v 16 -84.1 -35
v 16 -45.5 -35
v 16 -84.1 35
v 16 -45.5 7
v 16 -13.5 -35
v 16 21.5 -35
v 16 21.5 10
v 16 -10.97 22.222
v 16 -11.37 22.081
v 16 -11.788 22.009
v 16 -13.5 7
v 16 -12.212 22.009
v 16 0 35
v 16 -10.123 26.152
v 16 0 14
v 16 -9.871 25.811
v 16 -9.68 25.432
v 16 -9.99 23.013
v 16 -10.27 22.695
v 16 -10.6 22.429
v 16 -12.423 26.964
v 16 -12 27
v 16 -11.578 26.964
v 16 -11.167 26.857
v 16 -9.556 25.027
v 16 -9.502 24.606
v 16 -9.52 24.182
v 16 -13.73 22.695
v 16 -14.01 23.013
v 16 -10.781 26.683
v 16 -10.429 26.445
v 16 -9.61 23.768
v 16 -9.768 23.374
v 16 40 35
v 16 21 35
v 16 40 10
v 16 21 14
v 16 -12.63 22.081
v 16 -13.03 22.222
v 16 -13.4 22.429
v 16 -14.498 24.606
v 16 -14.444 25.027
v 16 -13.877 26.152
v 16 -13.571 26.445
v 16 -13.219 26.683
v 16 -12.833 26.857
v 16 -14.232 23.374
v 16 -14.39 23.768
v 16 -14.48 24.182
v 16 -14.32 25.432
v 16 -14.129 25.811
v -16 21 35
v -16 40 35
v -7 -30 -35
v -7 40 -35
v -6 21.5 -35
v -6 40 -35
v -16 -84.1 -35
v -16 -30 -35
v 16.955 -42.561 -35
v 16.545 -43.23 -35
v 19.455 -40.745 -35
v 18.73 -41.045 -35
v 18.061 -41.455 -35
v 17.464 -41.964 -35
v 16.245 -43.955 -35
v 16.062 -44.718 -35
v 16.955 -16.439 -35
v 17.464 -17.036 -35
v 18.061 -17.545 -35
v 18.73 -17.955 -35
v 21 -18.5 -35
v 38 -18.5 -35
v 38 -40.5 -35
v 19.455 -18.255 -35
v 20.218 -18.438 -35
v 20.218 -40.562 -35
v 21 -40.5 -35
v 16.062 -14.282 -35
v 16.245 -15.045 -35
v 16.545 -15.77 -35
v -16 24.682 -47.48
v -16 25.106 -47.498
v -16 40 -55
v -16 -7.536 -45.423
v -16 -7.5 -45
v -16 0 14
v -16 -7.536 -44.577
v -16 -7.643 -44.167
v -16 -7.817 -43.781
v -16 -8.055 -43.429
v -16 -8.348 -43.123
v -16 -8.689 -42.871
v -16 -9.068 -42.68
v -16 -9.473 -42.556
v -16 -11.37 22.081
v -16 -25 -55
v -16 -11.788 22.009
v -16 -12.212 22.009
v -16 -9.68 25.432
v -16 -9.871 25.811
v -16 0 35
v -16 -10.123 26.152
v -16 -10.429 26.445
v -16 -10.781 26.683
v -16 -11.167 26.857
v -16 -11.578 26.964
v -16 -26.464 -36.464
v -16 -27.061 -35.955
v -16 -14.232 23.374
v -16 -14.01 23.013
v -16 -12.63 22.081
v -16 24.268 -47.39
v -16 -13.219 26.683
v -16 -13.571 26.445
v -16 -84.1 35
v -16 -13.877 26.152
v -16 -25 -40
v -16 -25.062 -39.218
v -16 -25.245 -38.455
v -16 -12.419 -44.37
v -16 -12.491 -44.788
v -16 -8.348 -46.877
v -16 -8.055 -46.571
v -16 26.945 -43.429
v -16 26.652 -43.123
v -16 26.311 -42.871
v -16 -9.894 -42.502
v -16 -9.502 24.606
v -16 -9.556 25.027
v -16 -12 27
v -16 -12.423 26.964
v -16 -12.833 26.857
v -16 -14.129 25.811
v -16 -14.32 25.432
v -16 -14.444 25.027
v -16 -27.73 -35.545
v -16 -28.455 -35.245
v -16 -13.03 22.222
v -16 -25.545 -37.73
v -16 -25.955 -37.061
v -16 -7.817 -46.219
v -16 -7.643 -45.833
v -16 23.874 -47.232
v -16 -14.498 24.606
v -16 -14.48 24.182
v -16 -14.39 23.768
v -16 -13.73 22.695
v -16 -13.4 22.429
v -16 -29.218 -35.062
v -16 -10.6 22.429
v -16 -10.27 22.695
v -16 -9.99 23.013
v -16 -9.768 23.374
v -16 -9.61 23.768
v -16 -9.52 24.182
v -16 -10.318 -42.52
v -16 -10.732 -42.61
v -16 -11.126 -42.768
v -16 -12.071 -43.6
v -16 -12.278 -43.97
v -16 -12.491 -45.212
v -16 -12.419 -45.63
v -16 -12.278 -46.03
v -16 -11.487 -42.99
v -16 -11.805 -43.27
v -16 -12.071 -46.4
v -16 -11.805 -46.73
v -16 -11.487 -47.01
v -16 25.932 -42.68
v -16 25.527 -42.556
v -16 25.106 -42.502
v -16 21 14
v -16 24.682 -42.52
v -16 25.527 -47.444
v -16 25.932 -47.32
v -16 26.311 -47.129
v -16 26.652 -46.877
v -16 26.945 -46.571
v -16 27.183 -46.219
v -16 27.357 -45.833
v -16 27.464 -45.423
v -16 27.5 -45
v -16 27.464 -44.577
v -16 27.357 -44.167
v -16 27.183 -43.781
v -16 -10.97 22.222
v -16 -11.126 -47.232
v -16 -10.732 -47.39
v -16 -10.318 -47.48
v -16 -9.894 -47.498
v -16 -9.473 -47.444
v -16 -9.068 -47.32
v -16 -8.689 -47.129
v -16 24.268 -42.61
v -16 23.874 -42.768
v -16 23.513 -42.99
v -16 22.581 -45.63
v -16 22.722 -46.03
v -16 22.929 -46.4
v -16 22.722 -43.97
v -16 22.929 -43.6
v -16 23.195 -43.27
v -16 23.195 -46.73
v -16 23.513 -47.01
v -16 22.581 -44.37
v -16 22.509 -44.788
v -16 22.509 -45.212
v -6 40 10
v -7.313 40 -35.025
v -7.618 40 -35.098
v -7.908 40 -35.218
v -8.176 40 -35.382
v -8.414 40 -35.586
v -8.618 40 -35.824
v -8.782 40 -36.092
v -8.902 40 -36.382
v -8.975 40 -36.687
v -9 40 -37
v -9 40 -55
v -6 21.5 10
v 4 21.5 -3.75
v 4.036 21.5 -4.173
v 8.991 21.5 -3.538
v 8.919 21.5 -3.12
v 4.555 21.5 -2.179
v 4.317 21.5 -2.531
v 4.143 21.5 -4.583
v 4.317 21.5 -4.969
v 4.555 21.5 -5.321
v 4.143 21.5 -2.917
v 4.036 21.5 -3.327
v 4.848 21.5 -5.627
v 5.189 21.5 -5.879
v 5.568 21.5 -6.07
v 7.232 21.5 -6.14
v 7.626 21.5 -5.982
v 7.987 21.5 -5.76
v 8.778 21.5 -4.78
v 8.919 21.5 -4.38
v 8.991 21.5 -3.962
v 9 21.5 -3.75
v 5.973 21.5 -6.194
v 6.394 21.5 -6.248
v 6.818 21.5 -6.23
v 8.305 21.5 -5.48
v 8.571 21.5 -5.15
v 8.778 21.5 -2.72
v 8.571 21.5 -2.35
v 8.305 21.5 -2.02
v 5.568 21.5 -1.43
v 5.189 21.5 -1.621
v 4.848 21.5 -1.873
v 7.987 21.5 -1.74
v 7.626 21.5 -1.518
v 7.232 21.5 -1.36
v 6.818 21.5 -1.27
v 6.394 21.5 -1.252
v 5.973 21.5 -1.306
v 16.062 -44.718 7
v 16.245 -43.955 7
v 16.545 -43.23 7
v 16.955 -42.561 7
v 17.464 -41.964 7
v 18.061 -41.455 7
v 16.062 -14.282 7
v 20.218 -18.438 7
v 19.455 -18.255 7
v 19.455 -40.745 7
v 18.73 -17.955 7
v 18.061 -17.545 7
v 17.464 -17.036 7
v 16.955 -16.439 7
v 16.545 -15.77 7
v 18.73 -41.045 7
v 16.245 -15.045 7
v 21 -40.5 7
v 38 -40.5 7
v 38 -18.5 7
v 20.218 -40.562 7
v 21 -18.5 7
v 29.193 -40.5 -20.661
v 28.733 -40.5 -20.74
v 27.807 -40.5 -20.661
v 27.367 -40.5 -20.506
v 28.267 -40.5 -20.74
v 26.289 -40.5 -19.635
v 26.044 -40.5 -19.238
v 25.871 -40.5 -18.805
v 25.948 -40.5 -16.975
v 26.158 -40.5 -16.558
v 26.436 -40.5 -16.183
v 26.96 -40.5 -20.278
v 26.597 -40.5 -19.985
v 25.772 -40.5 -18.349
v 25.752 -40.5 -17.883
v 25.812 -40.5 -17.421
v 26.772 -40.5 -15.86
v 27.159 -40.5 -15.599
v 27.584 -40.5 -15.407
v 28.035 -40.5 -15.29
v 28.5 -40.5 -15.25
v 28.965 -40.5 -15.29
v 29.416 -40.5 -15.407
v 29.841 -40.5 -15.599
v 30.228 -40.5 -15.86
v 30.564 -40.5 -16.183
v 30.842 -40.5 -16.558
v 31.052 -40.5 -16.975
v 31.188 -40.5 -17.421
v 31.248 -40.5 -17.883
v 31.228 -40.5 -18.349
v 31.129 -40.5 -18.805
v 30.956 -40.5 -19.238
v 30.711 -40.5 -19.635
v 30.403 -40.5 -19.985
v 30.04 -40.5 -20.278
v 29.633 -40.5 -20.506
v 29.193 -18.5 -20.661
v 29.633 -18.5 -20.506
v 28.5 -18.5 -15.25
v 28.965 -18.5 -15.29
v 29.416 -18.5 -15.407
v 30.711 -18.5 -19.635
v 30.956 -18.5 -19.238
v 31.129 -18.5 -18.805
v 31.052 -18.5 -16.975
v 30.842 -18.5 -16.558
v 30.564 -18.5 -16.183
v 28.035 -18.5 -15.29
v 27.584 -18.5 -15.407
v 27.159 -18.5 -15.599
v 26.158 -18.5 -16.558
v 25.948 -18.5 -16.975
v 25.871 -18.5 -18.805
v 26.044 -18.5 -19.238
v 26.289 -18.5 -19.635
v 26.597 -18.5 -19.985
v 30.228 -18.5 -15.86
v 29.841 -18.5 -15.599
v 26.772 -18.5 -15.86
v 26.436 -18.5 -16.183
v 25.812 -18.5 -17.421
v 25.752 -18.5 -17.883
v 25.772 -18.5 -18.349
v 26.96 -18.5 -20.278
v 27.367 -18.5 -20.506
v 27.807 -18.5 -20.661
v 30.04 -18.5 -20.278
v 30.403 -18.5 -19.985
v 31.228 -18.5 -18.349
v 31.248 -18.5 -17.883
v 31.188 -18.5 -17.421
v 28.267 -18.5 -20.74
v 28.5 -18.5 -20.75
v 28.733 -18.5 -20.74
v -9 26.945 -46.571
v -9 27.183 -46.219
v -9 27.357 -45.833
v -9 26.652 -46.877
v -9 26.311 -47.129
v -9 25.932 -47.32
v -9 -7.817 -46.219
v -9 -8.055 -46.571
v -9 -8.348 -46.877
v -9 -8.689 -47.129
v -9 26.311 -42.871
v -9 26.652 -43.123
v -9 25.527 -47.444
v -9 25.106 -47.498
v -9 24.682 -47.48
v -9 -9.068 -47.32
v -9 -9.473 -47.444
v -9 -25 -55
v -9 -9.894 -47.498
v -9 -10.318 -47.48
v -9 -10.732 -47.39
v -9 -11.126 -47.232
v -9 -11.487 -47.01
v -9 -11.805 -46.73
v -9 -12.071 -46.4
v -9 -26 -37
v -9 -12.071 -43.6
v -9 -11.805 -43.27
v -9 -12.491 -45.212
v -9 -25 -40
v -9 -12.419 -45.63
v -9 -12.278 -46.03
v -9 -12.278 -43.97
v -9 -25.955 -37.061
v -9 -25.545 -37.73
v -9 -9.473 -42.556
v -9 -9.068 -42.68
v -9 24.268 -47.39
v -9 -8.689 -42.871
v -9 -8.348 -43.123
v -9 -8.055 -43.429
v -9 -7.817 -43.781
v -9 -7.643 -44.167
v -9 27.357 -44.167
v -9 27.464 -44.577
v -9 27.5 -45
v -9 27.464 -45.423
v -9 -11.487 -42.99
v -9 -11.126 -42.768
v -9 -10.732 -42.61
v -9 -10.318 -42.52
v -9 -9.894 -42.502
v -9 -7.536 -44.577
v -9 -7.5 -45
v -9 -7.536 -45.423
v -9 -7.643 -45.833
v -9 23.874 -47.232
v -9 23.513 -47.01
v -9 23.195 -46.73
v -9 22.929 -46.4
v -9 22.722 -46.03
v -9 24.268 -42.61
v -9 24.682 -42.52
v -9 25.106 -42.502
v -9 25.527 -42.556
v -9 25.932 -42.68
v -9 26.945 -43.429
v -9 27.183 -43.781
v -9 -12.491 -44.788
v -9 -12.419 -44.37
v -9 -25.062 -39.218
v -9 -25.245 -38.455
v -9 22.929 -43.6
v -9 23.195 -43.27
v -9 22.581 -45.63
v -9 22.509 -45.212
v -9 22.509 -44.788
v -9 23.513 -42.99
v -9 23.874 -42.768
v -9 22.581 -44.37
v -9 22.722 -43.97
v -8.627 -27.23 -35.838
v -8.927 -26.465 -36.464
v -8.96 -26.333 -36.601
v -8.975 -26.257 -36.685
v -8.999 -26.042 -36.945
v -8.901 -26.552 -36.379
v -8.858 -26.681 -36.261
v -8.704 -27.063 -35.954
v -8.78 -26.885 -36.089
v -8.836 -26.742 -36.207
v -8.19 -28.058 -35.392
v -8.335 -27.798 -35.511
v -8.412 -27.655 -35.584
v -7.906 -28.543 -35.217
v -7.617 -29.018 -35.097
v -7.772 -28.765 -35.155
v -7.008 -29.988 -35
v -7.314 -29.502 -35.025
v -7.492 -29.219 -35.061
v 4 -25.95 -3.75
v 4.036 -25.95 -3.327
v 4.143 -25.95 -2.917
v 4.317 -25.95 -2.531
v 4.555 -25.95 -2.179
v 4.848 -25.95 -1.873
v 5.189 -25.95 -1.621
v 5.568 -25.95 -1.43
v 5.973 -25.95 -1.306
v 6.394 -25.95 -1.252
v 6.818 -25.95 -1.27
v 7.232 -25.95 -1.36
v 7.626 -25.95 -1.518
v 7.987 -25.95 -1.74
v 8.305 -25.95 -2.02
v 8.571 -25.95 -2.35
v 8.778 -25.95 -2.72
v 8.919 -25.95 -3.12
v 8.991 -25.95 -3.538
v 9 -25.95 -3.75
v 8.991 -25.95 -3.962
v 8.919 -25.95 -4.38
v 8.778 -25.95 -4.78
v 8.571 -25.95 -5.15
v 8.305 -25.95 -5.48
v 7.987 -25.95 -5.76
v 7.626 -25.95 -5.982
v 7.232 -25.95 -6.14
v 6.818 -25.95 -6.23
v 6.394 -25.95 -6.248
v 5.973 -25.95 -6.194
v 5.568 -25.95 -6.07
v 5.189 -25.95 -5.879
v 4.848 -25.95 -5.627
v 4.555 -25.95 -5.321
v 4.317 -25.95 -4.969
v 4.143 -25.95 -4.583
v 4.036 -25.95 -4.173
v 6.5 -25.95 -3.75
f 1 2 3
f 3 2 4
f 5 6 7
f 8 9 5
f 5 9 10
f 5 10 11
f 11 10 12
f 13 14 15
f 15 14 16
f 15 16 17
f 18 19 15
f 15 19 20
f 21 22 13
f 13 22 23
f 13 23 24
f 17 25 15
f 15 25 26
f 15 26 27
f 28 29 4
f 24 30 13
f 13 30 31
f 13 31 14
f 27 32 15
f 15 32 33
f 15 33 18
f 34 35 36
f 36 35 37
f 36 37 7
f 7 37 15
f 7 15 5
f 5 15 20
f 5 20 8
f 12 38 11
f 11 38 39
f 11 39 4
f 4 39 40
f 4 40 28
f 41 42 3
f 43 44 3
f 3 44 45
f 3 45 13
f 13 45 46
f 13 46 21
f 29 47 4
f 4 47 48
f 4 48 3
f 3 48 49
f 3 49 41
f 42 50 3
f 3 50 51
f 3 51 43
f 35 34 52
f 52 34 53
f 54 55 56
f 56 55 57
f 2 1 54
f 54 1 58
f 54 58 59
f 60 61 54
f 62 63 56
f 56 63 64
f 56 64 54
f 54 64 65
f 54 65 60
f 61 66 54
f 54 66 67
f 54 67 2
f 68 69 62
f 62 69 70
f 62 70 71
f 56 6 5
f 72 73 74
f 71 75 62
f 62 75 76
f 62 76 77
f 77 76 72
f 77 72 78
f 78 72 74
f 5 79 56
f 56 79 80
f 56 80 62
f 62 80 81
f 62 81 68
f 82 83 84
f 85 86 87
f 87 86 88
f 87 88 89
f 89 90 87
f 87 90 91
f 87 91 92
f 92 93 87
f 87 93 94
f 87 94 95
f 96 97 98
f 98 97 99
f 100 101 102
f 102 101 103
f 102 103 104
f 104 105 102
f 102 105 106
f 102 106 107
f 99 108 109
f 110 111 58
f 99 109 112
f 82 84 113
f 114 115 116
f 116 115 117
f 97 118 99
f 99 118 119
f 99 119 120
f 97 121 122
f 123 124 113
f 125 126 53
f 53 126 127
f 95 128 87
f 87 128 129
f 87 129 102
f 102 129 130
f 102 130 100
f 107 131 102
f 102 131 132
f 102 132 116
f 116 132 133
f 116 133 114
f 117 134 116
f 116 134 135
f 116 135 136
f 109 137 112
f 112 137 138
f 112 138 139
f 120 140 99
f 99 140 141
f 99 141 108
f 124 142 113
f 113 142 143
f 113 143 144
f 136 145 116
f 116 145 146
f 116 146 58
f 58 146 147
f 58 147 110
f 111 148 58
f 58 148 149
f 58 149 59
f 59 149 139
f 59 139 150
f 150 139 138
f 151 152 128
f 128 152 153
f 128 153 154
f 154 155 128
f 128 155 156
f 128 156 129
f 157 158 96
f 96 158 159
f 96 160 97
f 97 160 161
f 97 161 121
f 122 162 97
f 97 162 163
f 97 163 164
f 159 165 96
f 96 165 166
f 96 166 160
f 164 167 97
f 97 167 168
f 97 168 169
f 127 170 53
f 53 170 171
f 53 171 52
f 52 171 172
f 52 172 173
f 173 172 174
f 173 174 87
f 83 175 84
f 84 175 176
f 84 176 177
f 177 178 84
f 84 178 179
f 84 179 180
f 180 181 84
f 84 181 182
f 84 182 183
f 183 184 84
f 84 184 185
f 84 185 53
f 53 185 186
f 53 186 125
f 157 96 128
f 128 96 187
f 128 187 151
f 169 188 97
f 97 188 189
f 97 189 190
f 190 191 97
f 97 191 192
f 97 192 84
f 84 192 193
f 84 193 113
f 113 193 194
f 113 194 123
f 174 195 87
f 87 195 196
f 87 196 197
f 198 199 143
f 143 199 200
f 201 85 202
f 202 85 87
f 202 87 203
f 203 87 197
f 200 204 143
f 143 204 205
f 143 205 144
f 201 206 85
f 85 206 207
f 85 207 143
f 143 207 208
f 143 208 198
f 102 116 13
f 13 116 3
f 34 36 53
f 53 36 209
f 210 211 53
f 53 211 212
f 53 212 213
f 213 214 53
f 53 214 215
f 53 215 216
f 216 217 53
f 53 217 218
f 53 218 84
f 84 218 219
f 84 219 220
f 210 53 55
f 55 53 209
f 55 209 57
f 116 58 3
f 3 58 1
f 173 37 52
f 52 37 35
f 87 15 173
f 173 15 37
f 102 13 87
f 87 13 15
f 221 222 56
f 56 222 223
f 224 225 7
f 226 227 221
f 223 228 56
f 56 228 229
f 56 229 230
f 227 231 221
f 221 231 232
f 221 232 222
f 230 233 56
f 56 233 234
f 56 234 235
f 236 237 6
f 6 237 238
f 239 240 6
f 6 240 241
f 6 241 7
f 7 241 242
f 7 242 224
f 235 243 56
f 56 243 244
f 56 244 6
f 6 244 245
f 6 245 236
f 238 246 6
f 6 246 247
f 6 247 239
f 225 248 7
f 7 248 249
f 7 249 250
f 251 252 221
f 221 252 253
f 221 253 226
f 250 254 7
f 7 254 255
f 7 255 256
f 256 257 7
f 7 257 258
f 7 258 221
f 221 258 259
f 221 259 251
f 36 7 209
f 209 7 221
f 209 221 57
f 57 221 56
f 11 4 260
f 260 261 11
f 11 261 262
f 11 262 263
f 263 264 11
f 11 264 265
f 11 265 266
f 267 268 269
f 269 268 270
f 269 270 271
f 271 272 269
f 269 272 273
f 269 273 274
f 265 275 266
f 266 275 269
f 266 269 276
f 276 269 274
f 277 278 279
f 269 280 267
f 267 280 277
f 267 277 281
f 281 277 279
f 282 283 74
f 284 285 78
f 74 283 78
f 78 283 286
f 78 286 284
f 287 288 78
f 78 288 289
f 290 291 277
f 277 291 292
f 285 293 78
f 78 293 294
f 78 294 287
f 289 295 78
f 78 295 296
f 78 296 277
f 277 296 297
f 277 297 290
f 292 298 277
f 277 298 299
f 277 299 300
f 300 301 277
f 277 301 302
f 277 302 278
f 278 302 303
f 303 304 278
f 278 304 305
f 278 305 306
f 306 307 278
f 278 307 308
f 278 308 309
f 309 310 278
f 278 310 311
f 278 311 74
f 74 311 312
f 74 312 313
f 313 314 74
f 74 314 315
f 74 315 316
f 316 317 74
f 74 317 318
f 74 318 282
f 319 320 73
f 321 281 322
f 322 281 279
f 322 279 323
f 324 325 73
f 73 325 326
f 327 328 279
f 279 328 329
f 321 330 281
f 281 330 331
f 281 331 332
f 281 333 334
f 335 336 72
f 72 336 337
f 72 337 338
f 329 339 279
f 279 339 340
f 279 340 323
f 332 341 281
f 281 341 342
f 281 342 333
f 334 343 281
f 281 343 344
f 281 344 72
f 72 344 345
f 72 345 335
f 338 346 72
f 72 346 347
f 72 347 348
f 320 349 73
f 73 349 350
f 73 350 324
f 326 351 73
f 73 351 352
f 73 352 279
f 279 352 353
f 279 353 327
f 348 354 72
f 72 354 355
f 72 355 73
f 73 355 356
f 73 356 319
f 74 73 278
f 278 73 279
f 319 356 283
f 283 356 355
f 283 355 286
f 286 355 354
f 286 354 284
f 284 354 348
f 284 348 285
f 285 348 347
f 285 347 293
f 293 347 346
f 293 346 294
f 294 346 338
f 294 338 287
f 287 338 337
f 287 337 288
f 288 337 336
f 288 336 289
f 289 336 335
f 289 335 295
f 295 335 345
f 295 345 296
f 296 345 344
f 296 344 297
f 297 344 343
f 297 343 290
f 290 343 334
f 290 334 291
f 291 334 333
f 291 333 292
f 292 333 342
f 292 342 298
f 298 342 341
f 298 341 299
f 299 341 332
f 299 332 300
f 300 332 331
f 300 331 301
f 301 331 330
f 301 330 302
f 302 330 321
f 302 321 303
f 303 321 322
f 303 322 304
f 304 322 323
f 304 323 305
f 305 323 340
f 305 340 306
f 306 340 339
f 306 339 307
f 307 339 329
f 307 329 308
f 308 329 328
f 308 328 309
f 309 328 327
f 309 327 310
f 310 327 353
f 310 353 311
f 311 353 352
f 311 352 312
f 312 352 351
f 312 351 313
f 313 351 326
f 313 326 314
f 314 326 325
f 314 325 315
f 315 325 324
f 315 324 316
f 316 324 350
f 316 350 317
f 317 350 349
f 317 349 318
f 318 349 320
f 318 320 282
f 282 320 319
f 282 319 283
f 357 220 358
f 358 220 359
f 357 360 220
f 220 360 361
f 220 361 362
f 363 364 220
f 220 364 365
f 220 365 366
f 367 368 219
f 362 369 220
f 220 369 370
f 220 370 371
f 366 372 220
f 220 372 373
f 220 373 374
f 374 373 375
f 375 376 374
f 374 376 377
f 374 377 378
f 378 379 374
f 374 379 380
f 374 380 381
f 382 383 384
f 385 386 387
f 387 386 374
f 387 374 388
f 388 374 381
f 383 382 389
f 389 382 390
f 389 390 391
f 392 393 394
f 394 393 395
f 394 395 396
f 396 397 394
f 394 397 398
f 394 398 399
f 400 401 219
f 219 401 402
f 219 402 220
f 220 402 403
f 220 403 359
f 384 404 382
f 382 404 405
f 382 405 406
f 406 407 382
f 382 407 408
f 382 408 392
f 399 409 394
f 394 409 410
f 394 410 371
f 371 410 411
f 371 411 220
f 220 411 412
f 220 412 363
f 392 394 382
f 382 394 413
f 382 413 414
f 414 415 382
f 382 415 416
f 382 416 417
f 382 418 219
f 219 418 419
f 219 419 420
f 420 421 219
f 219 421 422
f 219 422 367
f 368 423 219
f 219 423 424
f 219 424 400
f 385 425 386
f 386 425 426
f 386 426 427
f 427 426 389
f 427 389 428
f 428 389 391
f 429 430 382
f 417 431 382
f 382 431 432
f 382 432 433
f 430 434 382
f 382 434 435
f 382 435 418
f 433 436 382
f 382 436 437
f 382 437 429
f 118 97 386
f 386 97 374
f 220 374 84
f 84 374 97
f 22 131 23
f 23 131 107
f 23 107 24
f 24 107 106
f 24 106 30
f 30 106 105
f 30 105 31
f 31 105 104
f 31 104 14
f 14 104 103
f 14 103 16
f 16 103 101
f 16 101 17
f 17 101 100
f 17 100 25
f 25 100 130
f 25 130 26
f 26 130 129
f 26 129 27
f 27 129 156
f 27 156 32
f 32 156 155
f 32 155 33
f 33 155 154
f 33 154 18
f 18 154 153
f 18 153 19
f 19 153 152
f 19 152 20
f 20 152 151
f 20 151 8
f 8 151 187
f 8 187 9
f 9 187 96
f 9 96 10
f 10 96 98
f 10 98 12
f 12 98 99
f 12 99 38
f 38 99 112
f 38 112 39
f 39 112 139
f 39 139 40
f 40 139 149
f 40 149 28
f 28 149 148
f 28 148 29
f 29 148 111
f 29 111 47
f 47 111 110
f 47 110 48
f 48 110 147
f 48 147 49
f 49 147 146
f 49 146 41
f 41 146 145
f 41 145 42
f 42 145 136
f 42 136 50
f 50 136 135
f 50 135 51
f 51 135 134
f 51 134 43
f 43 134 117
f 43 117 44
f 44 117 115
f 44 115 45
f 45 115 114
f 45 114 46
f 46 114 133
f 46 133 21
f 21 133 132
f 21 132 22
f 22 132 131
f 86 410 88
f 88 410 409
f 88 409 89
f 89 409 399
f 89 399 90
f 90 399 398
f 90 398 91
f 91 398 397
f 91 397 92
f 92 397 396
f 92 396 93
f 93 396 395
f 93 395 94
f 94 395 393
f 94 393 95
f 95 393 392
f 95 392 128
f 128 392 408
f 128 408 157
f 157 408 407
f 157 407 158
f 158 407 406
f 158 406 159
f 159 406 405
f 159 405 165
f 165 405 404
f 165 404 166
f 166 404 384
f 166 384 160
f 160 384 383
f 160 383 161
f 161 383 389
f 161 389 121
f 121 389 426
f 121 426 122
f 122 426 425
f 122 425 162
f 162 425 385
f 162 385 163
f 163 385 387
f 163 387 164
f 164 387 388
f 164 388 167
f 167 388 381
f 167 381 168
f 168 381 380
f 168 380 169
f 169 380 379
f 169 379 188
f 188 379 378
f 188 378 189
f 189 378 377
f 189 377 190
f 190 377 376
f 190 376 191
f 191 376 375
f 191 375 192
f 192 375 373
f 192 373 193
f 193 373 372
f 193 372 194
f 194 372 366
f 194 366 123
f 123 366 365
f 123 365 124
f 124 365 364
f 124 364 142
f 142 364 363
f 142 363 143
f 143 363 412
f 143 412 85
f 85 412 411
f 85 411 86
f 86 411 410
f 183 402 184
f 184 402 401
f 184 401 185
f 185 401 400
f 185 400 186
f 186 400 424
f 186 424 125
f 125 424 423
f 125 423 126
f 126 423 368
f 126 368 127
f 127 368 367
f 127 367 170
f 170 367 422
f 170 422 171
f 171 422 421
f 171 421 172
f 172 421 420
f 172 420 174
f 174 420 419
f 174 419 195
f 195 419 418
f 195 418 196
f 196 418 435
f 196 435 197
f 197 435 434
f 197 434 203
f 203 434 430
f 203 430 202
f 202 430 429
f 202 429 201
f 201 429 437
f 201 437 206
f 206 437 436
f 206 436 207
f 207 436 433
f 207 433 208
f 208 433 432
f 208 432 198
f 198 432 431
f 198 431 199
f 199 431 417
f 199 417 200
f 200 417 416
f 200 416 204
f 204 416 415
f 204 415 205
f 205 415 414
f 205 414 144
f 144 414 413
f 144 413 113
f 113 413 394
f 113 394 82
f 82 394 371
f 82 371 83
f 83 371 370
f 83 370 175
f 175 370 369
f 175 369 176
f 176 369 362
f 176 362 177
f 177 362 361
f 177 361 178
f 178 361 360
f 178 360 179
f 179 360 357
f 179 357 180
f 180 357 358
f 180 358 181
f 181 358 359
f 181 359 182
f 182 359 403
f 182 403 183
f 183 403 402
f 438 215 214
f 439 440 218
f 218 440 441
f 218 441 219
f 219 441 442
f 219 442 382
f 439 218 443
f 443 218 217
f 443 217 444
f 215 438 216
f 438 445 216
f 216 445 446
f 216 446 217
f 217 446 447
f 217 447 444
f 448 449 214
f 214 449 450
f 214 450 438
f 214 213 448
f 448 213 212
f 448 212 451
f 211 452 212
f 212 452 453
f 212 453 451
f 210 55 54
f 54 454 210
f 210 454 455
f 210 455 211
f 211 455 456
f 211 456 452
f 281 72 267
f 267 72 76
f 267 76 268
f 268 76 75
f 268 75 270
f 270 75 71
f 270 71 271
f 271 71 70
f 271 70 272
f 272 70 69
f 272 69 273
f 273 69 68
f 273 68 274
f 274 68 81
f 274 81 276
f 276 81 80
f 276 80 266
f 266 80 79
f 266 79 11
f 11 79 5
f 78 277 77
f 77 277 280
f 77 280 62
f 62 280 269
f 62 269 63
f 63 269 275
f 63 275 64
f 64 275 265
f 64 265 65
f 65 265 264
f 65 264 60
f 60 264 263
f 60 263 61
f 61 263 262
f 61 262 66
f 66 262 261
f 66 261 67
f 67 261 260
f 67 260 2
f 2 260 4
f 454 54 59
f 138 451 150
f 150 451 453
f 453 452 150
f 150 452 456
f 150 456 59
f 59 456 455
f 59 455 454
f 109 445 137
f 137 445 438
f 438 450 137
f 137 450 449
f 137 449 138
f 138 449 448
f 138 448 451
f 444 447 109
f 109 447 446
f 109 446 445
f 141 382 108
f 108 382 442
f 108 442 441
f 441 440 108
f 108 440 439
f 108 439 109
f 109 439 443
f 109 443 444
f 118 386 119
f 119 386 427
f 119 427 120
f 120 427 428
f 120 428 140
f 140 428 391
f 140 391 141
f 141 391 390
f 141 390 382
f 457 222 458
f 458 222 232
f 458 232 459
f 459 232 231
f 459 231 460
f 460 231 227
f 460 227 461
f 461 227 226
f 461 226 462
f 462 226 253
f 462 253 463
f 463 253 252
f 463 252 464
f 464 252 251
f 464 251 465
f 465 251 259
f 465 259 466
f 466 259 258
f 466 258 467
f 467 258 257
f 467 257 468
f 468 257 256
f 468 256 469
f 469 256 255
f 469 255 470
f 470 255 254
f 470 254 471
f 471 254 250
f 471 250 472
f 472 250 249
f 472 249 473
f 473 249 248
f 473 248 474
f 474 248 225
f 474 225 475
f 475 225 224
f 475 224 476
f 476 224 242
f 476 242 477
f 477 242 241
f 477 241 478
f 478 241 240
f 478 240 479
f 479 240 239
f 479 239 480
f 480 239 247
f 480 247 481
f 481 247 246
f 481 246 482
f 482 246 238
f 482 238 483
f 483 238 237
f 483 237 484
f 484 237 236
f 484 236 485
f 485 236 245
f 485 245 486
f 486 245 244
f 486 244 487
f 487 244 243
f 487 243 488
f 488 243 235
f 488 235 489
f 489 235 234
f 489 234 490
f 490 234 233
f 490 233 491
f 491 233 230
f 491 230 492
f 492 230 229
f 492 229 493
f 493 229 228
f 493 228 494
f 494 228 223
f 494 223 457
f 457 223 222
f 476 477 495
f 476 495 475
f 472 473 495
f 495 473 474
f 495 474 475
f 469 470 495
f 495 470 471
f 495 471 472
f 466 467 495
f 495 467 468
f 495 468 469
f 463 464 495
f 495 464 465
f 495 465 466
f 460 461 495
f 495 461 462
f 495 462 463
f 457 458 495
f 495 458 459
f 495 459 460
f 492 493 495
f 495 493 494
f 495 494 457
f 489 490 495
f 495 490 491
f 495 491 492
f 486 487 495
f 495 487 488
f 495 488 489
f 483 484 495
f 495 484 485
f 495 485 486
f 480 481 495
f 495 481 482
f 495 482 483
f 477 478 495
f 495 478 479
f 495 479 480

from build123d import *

# Parameters (mm, degrees)
SKETCH1_W                = 32
SKETCH1_H                = 70
BOSS_EXTRUDE1_DEPTH      = 40
BOSS_EXTRUDE1_DEPTH_BACK = 84.1
SKETCH2_W                = 21
SKETCH2_H                = 21
CUT_EXTRUDE1_DEPTH       = 17
CUT_EXTRUDE1_DEPTH_BACK  = 17
CUT_EXTRUDE2_START       = -18.5
SKETCH3_W                = 22
SKETCH3_H                = 45
CUT_EXTRUDE2_DEPTH       = 18.5
SKETCH4_W                = 42
SKETCH4_H                = 22
BOSS_EXTRUDE2_DEPTH      = 22
SKETCH5_R                = 2.75
CUT_EXTRUDE3_DEPTH       = 66.6
SKETCH6_W                = 7
SKETCH6_H                = 65
BOSS_EXTRUDE3_DEPTH      = 20
SKETCH7_R                = 2.5
CUT_EXTRUDE4_DEPTH       = 17
CUT_EXTRUDE4_DEPTH_BACK  = 39
SKETCH8_R                = 2.5
CUT_EXTRUDE5_DEPTH       = 8
FILLET1_R                = 2
FILLET2_R                = 5
SKETCH9_R                = 2.5
CUT_EXTRUDE6_DEPTH       = 47.45


with BuildPart() as part:
    # Sketch1 → Boss-Extrude1 (new body, two sides)
    with BuildSketch(Plane(origin=(0, 0, 0), x_dir=(1, 0, 0), z_dir=(0, 1, 0))) as boss_extrude1_sk:
        Rectangle(SKETCH1_W, SKETCH1_H)
    extrude(amount=BOSS_EXTRUDE1_DEPTH)
    extrude(boss_extrude1_sk.sketch, amount=-BOSS_EXTRUDE1_DEPTH_BACK)

    # Sketch2 → Cut-Extrude1 (cut, two sides)
    with BuildSketch(Plane(origin=(0, 0, 0), x_dir=(0, 0, -1), z_dir=(1, 0, 0))) as cut_extrude1_sk:
        with Locations((-24.5, 10.5)):
            Rectangle(SKETCH2_W, SKETCH2_H)
    extrude(amount=CUT_EXTRUDE1_DEPTH, mode=Mode.SUBTRACT)
    extrude(cut_extrude1_sk.sketch, amount=-CUT_EXTRUDE1_DEPTH_BACK, mode=Mode.SUBTRACT)

    # Sketch3 → Cut-Extrude2 (cut)
    with BuildSketch(Plane(origin=(0, 40, 0), x_dir=(1, 0, 0), z_dir=(0, 1, 0)).offset(CUT_EXTRUDE2_START)):
        with Locations((5, 12.5)):
            Rectangle(SKETCH3_W, SKETCH3_H)
    extrude(amount=CUT_EXTRUDE2_DEPTH, mode=Mode.SUBTRACT)

    # Sketch4 → Boss-Extrude2 (add)
    with BuildSketch(Plane(origin=(16, 0, 0), x_dir=(0, 0, -1), z_dir=(1, 0, 0))):
        with Locations((14, -29.5)):
            Rectangle(SKETCH4_W, SKETCH4_H)
    extrude(amount=BOSS_EXTRUDE2_DEPTH)

    # Sketch5 → Cut-Extrude3 (cut, through all)
    with BuildSketch(Plane(origin=(0, -18.5, 0), x_dir=(1, 0, 0), z_dir=(0, 1, 0))):
        with Locations((28.5, 18)):
            Circle(SKETCH5_R)
    extrude(amount=-CUT_EXTRUDE3_DEPTH, mode=Mode.SUBTRACT)

    # Sketch6 → Boss-Extrude3 (add)
    with BuildSketch(Plane.XY.offset(-35)):
        with Locations((-12.5, 7.5)):
            Rectangle(SKETCH6_W, SKETCH6_H)
    extrude(amount=-BOSS_EXTRUDE3_DEPTH)

    # Sketch7 → Cut-Extrude4 (cut, two sides)
    with BuildSketch(Plane.ZY) as cut_extrude4_sk:
        with Locations((24.5, -12)):
            Circle(SKETCH7_R)
    extrude(amount=CUT_EXTRUDE4_DEPTH, mode=Mode.SUBTRACT)
    extrude(cut_extrude4_sk.sketch, amount=-CUT_EXTRUDE4_DEPTH_BACK, mode=Mode.SUBTRACT)

    # Sketch8 → Cut-Extrude5 (cut, through all)
    with BuildSketch(Plane(origin=(-9, 0, 0), x_dir=(0, 0, -1), z_dir=(1, 0, 0))):
        with Locations((45, 25)):
            Circle(SKETCH8_R)
        with Locations((45, -10)):
            Circle(SKETCH8_R)
    extrude(amount=-CUT_EXTRUDE5_DEPTH, mode=Mode.SUBTRACT)

    # Fillet1
    fillet1_edges = [part.edges().sort_by_distance(p)[0] for p in [
        (-9, 7.5, -35),
    ]]
    fillet(fillet1_edges, radius=FILLET1_R)

    # Fillet2
    fillet2_edges = [part.edges().sort_by_distance(p)[0] for p in [
        (16, -18.5, -14),
        (16, -40.5, -14),
        (-12.5, -25, -35),
    ]]
    fillet(fillet2_edges, radius=FILLET2_R)

    # Sketch9 → Cut-Extrude6 (cut)
    with BuildSketch(Plane(origin=(0, 21.5, 0), x_dir=(1, 0, 0), z_dir=(0, 1, 0))):
        with Locations((6.5, 3.75)):
            Circle(SKETCH9_R)
    extrude(amount=-CUT_EXTRUDE6_DEPTH, mode=Mode.SUBTRACT)


solid = part.part
